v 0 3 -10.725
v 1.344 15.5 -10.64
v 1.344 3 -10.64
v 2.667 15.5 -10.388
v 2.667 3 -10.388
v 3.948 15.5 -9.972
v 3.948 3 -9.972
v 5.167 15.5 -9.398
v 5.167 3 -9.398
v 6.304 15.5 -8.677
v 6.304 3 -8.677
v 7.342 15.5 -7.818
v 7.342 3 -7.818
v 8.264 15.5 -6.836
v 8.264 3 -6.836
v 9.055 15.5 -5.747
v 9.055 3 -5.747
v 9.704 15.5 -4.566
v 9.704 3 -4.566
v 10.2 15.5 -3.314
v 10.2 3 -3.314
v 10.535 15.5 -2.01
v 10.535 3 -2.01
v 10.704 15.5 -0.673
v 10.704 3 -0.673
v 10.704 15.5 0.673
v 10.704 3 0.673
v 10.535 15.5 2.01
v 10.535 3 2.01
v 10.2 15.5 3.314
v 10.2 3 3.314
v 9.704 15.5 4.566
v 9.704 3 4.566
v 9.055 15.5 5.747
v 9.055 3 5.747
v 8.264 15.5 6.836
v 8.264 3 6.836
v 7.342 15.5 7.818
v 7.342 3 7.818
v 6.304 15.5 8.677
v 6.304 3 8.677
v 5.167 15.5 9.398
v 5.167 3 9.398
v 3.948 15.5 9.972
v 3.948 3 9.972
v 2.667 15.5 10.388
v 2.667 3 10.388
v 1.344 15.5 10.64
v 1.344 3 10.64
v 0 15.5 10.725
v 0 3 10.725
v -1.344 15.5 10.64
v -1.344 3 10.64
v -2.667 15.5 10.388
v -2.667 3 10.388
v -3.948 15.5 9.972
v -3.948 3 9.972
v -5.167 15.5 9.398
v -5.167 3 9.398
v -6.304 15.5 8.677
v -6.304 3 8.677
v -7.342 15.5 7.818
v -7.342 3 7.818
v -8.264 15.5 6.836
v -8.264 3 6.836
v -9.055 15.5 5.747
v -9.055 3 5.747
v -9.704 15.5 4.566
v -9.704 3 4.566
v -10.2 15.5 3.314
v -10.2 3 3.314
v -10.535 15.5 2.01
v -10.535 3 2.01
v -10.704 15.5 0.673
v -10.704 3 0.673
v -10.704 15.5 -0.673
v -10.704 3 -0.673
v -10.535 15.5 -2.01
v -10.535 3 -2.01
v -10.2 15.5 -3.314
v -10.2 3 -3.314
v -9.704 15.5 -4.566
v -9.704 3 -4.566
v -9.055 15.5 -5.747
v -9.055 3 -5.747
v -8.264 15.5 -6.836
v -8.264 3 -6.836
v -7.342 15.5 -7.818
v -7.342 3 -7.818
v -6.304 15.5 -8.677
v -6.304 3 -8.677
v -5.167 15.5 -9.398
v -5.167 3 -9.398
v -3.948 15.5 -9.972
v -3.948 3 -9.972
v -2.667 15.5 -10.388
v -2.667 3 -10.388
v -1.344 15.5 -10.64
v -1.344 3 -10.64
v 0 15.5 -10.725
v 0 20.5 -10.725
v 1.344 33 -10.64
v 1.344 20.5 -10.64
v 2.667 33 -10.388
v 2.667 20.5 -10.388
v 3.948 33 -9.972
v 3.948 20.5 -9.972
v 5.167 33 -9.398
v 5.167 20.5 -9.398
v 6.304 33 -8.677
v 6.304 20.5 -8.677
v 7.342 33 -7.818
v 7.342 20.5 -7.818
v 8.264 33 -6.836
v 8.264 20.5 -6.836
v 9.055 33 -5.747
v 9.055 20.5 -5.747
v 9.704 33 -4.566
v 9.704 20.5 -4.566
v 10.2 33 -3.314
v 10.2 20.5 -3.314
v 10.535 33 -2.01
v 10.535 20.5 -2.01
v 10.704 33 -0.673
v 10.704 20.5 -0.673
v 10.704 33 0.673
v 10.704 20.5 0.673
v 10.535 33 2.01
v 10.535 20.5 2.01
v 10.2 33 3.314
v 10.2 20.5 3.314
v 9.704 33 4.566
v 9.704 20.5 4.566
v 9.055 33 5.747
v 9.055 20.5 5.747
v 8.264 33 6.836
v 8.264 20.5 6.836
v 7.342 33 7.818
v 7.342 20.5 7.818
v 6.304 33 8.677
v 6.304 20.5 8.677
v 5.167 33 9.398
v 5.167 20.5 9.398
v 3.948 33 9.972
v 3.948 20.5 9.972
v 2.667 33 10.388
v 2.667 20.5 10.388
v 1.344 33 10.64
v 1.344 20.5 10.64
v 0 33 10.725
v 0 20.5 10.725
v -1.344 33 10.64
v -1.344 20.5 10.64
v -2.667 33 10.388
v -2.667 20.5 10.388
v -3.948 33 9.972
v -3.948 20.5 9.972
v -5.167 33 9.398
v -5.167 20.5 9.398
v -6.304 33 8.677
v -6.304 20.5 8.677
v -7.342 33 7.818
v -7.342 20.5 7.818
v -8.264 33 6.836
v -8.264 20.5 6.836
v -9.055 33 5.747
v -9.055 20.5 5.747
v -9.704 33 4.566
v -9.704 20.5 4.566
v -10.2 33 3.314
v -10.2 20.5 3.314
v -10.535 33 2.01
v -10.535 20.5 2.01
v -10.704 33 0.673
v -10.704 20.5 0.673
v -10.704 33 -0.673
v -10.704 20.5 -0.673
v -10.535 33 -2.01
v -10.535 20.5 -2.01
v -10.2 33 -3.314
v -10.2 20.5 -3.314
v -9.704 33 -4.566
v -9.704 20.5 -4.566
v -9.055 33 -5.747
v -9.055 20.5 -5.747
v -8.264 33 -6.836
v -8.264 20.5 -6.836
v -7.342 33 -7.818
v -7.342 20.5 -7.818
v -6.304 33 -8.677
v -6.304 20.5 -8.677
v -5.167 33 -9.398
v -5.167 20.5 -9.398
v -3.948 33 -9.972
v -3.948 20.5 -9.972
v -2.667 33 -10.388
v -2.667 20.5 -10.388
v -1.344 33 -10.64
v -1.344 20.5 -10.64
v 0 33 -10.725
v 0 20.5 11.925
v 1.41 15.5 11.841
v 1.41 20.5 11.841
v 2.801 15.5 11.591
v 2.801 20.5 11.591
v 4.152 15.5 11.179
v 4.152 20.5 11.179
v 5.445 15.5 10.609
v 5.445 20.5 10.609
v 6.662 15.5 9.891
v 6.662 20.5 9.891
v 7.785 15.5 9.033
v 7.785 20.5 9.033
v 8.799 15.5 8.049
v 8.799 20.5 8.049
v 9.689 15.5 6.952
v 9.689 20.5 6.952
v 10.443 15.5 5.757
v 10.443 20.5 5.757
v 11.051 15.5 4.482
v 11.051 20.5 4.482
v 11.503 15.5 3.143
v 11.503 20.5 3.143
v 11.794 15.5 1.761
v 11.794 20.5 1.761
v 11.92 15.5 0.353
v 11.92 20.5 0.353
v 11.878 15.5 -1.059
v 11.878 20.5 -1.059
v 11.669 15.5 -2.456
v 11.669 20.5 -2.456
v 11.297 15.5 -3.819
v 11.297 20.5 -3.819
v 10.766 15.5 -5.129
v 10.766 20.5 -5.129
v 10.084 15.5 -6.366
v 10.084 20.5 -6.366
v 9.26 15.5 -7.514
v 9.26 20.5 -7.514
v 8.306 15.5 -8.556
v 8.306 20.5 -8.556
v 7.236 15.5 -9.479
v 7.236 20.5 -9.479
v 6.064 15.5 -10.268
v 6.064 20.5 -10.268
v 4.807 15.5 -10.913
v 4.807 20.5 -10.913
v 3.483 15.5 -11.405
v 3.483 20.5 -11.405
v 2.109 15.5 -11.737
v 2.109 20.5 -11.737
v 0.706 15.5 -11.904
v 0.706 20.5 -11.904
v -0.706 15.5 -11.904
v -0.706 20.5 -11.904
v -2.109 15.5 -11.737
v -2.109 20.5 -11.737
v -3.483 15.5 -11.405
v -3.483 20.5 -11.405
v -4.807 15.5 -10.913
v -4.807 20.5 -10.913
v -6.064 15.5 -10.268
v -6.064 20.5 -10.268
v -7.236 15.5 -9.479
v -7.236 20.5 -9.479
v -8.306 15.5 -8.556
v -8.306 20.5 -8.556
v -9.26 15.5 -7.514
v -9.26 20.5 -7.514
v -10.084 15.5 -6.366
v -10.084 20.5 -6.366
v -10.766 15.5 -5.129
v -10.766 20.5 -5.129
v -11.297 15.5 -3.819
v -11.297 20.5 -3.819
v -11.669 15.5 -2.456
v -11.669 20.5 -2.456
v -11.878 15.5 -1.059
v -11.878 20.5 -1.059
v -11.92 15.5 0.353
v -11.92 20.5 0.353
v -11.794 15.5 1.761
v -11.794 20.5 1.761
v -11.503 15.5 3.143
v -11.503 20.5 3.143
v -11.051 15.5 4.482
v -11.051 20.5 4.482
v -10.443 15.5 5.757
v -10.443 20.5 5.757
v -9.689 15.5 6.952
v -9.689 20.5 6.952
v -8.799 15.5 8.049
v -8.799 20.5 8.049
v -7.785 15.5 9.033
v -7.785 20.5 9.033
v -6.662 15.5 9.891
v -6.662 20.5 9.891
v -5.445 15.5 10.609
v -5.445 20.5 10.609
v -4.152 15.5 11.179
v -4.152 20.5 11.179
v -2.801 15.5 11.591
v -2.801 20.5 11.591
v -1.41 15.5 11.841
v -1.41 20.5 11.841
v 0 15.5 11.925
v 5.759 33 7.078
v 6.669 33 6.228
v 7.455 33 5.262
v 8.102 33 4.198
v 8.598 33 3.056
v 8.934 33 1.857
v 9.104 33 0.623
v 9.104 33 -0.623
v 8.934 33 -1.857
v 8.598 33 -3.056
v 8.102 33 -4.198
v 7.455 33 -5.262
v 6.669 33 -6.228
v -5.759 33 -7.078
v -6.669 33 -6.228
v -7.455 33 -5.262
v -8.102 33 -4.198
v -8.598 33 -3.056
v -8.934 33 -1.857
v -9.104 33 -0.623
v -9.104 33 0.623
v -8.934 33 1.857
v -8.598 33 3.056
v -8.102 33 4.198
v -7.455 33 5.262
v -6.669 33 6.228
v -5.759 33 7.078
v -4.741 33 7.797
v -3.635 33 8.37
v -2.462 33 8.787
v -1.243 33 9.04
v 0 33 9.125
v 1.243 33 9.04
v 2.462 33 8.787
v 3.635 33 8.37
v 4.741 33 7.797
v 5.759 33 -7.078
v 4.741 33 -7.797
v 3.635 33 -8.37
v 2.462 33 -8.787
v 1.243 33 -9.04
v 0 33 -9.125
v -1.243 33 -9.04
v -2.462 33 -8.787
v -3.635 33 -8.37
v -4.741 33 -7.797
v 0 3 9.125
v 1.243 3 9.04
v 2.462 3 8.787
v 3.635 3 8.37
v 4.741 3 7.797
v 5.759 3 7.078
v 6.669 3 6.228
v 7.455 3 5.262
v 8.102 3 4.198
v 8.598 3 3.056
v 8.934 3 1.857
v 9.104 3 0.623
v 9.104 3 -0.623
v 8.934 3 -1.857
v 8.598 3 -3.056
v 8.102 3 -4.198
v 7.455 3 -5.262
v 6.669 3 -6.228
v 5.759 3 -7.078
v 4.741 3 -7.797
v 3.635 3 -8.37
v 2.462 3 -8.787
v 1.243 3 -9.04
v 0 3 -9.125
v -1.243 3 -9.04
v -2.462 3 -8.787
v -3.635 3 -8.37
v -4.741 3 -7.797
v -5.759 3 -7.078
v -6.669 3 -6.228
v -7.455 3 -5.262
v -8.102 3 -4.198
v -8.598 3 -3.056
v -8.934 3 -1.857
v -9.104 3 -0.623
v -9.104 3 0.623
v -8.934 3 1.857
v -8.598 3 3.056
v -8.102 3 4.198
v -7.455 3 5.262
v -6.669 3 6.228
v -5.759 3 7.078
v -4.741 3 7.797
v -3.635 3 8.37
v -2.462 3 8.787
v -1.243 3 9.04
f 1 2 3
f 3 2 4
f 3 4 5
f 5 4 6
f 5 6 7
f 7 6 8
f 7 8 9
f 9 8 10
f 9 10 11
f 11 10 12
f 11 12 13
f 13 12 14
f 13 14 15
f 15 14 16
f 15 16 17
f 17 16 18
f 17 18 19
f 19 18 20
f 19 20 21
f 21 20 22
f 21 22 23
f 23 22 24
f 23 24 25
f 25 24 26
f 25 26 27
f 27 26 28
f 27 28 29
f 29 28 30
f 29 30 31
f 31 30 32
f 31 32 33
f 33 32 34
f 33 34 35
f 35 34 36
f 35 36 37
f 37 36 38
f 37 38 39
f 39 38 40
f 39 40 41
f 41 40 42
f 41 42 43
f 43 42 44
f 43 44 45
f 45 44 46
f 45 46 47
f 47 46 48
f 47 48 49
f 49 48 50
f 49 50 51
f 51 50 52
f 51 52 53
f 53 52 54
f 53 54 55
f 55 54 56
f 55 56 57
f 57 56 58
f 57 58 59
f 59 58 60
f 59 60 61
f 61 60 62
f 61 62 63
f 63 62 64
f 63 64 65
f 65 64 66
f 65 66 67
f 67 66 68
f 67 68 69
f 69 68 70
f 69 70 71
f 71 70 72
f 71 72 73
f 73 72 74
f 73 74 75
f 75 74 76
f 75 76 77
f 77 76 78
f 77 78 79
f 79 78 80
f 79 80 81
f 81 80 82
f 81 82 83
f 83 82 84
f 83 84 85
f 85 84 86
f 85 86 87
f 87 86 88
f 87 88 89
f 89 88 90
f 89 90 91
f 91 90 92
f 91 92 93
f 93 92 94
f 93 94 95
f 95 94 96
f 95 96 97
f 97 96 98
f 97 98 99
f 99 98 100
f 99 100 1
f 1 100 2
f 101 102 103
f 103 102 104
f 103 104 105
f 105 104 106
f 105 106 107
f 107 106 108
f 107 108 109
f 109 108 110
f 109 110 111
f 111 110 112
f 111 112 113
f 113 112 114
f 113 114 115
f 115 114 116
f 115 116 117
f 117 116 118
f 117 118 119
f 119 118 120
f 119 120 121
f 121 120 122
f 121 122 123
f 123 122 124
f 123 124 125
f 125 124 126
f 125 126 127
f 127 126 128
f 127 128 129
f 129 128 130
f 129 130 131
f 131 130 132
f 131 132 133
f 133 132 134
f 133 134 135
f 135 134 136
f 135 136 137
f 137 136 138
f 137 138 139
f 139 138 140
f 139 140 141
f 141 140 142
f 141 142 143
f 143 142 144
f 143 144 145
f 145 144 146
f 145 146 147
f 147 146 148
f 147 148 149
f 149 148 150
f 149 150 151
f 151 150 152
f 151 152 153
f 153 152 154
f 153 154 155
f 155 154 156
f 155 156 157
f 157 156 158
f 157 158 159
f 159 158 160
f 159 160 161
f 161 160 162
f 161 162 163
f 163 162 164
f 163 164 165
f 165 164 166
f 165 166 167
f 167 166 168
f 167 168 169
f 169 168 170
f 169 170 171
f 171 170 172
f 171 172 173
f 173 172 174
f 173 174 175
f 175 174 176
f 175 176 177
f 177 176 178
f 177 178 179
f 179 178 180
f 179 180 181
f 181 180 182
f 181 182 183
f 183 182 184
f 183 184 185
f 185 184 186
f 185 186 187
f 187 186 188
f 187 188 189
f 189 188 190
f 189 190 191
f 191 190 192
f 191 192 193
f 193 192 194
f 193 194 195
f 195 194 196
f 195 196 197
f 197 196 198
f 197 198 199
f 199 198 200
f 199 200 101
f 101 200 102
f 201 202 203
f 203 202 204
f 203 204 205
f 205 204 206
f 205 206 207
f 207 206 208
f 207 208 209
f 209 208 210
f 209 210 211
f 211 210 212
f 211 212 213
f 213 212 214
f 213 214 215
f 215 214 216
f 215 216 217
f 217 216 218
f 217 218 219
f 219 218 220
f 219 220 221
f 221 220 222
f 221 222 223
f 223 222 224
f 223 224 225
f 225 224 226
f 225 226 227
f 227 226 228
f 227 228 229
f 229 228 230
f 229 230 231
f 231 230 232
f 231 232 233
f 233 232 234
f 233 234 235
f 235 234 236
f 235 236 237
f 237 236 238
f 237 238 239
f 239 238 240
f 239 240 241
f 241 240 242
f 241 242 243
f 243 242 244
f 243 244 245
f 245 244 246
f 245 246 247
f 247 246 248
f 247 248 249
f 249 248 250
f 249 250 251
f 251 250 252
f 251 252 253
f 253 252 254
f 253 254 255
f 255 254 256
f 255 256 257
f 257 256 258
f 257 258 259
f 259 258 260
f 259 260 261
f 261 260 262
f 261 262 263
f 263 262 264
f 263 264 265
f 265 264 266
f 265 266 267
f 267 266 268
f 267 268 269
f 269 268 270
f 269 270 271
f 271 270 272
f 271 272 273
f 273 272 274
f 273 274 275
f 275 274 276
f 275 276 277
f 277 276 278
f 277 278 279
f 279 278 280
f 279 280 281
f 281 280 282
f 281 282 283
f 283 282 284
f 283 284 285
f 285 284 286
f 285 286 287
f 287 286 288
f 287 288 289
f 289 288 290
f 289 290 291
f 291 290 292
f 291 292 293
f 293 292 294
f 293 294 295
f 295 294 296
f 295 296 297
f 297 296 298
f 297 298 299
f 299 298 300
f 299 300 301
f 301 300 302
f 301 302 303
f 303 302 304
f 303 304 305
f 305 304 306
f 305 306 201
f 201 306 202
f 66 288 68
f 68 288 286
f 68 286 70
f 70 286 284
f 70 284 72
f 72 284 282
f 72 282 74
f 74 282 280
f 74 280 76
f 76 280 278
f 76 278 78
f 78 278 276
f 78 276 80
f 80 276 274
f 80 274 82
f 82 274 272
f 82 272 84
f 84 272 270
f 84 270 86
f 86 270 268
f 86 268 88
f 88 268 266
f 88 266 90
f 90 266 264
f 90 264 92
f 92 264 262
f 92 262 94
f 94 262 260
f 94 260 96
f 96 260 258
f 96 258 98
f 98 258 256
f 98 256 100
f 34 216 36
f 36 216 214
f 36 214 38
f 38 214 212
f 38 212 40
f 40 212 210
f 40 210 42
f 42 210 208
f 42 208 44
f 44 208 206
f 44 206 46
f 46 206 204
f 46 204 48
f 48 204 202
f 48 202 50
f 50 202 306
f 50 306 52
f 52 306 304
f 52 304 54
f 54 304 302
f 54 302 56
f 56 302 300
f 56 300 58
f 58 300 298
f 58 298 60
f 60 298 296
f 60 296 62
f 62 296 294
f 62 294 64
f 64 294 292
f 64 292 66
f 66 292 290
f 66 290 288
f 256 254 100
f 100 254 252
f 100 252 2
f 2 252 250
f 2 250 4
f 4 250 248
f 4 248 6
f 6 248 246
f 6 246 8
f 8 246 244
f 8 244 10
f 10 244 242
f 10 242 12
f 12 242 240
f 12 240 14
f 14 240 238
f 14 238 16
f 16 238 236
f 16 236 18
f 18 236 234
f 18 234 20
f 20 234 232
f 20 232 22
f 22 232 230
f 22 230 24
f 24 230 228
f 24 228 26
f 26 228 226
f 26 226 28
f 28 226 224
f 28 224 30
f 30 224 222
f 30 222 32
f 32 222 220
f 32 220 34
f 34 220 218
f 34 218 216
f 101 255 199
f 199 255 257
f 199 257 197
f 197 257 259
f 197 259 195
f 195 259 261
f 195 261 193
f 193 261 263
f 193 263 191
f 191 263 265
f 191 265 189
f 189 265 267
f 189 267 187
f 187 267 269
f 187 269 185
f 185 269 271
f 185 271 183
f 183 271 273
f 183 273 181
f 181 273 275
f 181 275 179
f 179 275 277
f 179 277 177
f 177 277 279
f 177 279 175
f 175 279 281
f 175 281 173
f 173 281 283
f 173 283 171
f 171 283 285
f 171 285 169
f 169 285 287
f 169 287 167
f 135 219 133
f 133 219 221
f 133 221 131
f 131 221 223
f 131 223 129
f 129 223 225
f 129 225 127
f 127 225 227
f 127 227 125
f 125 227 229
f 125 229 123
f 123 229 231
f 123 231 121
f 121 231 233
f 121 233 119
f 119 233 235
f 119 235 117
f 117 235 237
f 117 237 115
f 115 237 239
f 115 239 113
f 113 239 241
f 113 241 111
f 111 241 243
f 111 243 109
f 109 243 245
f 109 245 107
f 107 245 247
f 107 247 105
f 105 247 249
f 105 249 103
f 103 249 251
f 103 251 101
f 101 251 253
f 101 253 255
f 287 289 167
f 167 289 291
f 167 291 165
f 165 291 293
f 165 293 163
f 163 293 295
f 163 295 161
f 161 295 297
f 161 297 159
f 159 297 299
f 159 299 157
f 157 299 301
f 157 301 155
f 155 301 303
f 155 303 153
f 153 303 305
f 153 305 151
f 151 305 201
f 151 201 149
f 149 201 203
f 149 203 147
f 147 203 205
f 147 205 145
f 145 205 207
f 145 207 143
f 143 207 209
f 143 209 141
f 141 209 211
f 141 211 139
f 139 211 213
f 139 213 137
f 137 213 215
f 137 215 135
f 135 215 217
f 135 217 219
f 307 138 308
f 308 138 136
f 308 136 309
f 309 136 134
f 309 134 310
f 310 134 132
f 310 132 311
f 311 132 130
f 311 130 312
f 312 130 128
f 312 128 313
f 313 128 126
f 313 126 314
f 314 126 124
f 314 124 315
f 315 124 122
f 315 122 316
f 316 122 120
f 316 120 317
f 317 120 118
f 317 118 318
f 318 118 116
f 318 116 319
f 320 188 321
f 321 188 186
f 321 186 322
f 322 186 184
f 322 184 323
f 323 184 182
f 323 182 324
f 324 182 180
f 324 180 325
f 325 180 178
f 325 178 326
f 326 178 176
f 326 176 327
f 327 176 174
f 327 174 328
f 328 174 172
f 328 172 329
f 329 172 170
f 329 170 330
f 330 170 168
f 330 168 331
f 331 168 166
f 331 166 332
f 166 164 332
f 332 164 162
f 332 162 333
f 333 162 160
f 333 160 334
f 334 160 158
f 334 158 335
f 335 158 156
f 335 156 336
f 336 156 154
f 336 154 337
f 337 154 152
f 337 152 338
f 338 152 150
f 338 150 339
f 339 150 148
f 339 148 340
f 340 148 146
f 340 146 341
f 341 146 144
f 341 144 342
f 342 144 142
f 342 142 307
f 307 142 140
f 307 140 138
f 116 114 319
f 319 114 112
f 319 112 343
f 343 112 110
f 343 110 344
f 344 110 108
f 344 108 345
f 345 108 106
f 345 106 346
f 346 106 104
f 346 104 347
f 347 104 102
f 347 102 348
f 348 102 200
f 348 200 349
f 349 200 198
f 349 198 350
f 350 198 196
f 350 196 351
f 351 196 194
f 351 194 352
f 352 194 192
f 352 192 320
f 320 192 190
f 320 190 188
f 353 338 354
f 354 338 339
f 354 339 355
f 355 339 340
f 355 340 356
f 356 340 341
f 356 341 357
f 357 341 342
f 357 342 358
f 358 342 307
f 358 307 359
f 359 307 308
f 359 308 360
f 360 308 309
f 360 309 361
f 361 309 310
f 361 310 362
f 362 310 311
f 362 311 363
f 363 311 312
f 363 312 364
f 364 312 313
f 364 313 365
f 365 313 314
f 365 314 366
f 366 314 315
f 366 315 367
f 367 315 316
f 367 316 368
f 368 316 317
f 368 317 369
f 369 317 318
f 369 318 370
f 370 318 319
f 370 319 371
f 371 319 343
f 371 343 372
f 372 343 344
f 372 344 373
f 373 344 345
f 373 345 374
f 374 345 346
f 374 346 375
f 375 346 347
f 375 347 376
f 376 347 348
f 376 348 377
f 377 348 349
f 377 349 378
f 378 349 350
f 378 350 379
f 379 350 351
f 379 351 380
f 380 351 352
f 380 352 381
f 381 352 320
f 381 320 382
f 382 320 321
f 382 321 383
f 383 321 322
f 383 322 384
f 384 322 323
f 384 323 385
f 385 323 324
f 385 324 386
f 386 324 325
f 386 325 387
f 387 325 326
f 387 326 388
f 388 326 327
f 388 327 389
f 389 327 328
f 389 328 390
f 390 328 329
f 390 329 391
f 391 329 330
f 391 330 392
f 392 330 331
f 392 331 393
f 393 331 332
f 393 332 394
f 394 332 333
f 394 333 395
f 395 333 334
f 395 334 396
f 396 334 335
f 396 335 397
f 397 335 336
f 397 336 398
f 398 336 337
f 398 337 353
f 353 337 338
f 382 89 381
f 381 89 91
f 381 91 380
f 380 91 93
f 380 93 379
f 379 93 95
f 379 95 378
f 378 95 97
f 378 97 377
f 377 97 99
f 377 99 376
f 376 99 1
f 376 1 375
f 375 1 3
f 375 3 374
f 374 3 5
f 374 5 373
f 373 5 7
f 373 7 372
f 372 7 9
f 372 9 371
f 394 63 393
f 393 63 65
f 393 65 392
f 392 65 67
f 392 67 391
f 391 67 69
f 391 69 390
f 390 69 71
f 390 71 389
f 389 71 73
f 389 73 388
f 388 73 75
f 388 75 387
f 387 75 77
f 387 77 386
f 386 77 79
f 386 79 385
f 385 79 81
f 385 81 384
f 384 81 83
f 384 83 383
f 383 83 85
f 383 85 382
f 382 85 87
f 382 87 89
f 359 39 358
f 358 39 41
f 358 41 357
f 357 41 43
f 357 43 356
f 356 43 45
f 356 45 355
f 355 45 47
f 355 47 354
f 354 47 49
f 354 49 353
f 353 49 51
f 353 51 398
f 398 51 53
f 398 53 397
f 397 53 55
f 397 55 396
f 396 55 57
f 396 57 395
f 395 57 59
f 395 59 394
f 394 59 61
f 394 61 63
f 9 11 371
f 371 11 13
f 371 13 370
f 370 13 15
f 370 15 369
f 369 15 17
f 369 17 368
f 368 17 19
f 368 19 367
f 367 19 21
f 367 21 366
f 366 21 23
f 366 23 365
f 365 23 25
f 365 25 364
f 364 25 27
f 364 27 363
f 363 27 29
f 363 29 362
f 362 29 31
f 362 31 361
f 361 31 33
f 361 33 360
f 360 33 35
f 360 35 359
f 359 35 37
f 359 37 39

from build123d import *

# Parameters (mm, degrees)
SKETCH1_R                = 10.725
BOSS_EXTRUDE1_DEPTH      = 36
BOSS_EXTRUDE2_DEPTH      = 2.5
BOSS_EXTRUDE2_DEPTH_BACK = 2.5
SKETCH2_R                = 11.925
SKETCH3_R                = 9.125
CUT_EXTRUDE1_DEPTH       = 33
CUT_EXTRUDE2_START       = -3
SKETCH4_R                = 10.725
CUT_EXTRUDE2_DEPTH       = 3
SKETCH5_R                = 10.725
CUT_EXTRUDE3_DEPTH       = 3


with BuildPart() as part:
    # Sketch1 → Boss-Extrude1 (new body)
    with BuildSketch(Plane(origin=(0, 0, 0), x_dir=(1, 0, 0), z_dir=(0, 1, 0))):
        with Locations(Location((0, 0, 0), (0, 0, 270))):
            Circle(SKETCH1_R)
    extrude(amount=BOSS_EXTRUDE1_DEPTH)

    # Sketch2 → Boss-Extrude2 (add, two sides: drawn at the far end of the back side and taken through both)
    with BuildSketch(Plane(origin=(0, 18, 0), x_dir=(1, 0, 0), z_dir=(0, 1, 0)).offset(-BOSS_EXTRUDE2_DEPTH_BACK)):
        with Locations(Location((0, 0, 0), (0, 0, 270))):
            Circle(SKETCH2_R)
    extrude(amount=BOSS_EXTRUDE2_DEPTH + BOSS_EXTRUDE2_DEPTH_BACK)

    # Sketch3 → Cut-Extrude1 (cut)
    with BuildSketch(Plane(origin=(0, 36, 0), x_dir=(1, 0, 0), z_dir=(0, 1, 0))):
        with Locations(Location((0, 0, 0), (0, 0, 270))):
            Circle(SKETCH3_R)
    extrude(amount=-CUT_EXTRUDE1_DEPTH, mode=Mode.SUBTRACT)

    # Sketch4 → Cut-Extrude2 (cut)
    with BuildSketch(Plane(origin=(0, 36, 0), x_dir=(1, 0, 0), z_dir=(0, 1, 0)).offset(CUT_EXTRUDE2_START)):
        with Locations(Location((0, 0, 0), (0, 0, 270))):
            Circle(SKETCH4_R)
    extrude(amount=CUT_EXTRUDE2_DEPTH, mode=Mode.SUBTRACT)

    # Sketch5 → Cut-Extrude3 (cut)
    with BuildSketch(Plane.XZ):
        with Locations(Location((0, 0, 0), (0, 0, 270))):
            Circle(SKETCH5_R)
    extrude(amount=-CUT_EXTRUDE3_DEPTH, mode=Mode.SUBTRACT)


solid = part.part
